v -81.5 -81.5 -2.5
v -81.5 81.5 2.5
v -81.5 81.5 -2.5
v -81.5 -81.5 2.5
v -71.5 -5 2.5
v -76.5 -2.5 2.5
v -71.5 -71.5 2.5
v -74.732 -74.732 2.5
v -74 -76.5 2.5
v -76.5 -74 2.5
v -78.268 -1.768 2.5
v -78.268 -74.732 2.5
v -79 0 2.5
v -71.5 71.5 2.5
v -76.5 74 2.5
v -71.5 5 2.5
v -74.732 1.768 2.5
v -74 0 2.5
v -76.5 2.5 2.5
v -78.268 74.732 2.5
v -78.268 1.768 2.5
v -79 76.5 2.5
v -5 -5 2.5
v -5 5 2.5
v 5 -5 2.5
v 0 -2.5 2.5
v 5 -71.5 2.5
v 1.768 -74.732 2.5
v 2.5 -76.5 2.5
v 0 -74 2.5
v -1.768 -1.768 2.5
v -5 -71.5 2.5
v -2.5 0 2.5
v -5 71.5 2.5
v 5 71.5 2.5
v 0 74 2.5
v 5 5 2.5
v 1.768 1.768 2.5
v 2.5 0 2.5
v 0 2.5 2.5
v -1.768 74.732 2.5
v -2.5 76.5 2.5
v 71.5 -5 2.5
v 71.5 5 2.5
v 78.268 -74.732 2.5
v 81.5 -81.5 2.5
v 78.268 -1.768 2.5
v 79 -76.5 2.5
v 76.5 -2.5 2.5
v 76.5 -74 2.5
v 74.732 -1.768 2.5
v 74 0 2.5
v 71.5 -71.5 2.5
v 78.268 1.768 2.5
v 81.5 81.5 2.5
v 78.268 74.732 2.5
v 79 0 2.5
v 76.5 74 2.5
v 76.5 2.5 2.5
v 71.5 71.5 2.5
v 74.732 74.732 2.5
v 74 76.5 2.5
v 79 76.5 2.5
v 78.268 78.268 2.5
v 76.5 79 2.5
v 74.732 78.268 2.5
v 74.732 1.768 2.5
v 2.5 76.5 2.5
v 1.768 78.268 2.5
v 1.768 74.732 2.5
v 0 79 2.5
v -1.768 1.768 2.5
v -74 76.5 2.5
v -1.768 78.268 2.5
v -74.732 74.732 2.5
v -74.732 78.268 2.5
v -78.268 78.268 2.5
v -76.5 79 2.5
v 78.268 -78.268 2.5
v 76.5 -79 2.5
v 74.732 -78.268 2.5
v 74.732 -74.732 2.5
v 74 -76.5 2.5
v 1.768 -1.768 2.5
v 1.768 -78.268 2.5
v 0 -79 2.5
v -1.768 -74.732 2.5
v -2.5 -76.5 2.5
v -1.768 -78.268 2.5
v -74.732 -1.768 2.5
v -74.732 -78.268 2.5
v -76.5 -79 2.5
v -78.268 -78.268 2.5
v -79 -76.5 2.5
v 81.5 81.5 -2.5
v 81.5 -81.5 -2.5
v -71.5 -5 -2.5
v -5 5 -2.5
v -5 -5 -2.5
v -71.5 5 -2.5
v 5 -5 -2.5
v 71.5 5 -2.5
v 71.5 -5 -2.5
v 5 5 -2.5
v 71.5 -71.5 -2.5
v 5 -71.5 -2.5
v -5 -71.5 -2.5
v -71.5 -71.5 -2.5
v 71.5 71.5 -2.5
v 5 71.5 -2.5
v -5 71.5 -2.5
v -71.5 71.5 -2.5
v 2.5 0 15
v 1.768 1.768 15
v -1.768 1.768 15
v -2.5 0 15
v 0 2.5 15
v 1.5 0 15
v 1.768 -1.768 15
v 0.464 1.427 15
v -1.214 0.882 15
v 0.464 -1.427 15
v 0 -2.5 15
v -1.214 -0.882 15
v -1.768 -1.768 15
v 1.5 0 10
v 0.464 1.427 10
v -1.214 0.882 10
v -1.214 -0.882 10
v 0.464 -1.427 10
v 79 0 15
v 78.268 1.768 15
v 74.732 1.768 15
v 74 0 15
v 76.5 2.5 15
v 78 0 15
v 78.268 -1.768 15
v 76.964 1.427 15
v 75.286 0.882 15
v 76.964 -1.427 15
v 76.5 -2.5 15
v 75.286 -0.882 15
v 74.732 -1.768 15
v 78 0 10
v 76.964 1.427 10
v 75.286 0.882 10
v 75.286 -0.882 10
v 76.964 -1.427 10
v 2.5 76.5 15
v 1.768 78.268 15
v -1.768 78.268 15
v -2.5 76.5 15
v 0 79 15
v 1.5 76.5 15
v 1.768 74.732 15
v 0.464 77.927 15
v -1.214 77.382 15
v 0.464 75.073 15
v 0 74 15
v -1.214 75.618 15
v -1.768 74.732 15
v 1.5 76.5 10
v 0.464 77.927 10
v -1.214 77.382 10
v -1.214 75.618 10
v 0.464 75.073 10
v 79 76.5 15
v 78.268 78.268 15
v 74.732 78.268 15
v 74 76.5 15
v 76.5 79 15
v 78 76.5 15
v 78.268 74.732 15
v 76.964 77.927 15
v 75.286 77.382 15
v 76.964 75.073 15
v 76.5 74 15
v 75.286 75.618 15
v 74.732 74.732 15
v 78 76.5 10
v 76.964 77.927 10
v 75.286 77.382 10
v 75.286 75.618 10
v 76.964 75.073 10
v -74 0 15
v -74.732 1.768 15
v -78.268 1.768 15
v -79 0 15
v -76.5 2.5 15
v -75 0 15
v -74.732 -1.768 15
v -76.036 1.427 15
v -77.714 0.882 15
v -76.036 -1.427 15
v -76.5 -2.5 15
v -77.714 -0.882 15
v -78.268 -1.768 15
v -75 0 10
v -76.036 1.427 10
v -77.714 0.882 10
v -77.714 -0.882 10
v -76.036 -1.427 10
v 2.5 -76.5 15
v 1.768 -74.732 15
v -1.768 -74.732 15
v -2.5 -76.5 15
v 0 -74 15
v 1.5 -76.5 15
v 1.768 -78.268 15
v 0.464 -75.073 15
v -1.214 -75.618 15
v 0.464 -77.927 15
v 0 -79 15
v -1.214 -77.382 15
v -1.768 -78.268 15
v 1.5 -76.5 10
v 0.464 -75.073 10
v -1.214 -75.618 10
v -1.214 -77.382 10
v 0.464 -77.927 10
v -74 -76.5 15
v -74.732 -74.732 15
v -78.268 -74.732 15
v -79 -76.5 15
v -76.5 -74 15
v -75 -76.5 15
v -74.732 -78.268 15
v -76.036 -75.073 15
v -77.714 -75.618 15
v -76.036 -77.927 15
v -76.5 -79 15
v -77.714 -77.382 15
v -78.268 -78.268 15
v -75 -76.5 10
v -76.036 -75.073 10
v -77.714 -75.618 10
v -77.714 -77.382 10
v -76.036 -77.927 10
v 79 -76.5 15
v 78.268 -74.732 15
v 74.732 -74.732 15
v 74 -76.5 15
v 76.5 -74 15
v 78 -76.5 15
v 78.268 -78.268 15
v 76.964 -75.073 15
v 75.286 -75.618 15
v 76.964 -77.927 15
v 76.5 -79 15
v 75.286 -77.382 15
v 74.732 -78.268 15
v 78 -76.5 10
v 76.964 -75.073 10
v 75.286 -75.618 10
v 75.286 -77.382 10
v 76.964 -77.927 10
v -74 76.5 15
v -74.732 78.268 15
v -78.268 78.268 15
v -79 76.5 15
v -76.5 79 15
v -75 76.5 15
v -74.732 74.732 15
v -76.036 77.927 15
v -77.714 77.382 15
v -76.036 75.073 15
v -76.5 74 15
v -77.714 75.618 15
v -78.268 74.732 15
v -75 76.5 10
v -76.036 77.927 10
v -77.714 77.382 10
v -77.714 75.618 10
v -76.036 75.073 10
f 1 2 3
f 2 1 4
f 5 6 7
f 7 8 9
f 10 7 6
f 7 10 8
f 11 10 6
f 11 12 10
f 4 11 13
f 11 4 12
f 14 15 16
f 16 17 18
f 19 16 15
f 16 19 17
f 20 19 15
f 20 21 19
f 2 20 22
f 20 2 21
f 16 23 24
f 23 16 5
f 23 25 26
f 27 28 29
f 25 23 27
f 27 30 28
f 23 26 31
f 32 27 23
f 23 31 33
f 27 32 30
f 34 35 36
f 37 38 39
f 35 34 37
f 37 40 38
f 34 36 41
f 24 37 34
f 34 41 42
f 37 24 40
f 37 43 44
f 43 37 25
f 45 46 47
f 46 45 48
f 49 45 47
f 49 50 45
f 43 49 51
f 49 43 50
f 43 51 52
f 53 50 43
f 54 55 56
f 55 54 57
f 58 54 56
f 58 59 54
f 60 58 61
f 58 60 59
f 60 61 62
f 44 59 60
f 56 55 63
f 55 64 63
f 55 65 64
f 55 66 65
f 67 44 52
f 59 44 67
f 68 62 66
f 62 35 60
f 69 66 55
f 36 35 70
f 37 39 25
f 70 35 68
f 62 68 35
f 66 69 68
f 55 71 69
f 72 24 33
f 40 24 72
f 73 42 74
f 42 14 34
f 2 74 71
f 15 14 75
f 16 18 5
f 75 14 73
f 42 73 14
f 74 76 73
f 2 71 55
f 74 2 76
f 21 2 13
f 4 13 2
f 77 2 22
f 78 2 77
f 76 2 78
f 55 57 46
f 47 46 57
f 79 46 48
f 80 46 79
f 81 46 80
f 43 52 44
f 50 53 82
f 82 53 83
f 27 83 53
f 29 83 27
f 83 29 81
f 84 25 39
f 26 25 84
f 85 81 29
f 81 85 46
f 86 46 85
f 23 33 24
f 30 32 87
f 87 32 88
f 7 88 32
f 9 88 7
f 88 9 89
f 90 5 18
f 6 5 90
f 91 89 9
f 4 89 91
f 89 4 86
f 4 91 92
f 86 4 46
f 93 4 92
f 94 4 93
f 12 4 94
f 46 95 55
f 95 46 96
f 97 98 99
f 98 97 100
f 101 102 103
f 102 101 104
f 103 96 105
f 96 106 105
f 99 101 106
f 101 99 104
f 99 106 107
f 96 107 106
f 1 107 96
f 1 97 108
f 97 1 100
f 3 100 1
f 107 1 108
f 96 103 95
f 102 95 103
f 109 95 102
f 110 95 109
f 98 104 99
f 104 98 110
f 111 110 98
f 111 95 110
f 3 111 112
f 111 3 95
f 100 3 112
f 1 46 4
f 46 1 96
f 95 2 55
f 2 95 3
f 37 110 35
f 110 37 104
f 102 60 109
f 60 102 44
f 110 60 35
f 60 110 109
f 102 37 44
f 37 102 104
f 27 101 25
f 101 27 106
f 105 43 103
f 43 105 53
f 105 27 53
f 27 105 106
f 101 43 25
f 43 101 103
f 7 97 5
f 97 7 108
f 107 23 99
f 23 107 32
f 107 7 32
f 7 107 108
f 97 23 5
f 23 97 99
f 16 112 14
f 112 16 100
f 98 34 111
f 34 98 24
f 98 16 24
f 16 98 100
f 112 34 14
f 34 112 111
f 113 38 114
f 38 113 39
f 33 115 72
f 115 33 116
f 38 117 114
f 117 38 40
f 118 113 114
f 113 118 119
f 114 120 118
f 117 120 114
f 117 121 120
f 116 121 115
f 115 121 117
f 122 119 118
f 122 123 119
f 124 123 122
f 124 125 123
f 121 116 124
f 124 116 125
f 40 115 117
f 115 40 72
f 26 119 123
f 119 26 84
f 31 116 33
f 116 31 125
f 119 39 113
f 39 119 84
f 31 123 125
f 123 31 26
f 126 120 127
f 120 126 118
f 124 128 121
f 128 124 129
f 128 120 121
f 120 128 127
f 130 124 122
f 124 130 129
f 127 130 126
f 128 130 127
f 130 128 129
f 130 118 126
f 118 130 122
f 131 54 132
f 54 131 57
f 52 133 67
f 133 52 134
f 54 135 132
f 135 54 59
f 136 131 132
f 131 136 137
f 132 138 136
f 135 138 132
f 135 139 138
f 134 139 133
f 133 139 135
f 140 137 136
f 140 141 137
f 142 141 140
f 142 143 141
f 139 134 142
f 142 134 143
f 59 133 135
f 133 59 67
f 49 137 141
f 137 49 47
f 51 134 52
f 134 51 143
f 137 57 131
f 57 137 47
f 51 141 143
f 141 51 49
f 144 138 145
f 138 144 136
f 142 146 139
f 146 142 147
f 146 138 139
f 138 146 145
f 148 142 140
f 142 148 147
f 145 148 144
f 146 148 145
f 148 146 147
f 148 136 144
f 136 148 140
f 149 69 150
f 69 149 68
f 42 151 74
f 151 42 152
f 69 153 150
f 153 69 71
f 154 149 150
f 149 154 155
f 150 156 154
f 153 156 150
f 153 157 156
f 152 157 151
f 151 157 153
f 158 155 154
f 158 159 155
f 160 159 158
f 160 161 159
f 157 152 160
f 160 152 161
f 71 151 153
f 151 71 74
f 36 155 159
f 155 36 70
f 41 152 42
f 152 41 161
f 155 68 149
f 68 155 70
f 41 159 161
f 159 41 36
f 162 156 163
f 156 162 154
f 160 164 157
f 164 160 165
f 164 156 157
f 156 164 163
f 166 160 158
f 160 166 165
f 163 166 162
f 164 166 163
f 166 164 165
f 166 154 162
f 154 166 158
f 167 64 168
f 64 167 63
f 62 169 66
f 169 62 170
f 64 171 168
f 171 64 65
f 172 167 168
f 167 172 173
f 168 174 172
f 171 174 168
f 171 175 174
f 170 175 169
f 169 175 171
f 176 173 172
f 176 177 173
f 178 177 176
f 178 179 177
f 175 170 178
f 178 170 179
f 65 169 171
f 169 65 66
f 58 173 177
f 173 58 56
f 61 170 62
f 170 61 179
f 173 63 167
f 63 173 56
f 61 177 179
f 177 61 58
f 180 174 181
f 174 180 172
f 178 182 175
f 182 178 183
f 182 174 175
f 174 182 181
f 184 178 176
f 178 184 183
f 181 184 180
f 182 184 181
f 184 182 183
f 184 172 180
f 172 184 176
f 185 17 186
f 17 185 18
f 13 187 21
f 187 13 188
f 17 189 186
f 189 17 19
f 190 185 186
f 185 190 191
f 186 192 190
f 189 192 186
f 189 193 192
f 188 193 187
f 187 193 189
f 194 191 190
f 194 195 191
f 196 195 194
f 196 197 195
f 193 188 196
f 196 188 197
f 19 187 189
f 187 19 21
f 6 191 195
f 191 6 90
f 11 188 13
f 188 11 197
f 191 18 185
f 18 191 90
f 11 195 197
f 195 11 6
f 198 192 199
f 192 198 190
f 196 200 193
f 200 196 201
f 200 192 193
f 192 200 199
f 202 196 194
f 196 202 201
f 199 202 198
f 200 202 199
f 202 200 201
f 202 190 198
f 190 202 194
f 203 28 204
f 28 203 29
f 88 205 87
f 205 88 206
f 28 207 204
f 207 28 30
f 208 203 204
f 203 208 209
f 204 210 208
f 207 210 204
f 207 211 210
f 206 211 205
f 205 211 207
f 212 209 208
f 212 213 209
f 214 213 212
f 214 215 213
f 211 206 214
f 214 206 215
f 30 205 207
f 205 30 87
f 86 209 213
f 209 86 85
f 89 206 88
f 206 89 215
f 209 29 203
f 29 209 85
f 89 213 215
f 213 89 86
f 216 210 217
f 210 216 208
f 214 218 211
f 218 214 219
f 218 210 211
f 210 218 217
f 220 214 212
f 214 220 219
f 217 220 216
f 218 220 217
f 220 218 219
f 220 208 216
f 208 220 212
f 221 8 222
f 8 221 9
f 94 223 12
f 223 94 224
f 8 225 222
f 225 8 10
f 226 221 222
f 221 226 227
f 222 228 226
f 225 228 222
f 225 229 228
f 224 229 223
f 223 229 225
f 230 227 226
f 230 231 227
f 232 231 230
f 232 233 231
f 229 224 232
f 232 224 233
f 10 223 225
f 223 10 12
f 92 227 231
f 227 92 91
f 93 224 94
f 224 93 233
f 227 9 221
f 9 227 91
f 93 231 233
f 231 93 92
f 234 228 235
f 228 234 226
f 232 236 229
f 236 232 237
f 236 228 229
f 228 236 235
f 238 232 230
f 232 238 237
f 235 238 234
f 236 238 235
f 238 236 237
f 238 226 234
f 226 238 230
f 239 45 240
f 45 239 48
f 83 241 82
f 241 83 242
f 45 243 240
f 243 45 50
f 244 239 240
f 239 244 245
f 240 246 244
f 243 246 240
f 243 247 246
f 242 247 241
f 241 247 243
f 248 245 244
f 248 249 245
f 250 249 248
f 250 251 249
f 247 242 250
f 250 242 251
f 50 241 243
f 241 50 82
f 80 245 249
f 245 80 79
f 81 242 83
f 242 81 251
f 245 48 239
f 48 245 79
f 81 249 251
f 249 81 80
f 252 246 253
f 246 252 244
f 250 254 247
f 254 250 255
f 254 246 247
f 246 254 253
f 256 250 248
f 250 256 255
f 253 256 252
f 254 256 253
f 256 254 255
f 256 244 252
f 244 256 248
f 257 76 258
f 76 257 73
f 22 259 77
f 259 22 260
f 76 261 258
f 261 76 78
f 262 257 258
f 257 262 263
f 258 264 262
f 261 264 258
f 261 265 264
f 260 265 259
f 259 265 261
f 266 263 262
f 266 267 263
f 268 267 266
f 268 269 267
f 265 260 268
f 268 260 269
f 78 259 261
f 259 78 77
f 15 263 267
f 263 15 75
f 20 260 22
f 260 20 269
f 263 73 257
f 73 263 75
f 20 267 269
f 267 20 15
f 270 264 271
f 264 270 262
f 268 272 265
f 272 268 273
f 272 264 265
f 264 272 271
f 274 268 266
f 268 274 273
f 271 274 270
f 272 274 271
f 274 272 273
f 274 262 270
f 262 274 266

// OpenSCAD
board_support();

module board_support() {
    union() {
        width = 163;
        border = 5;
        difference() {
            height = 5;
            partial_size = width / 2 - border * 3;
            cube([width,width,height], center=true);
            translate([border,border,-height/2]) {
                cube([partial_size,partial_size,height]);
            }
            translate([border,-partial_size-border,-height/2]) {
                cube([partial_size,partial_size,height]);
            }
            translate([-partial_size - border, -partial_size - border,-height/2]) {
                cube([partial_size,partial_size,height]);
            }
            translate([-partial_size-border,border,-height/2]) {
                cube([partial_size,partial_size,height]);
            }
        }
        top_hollow_cube();
        // bottom left
        translate([width/2 - border, 0, 0]){
            top_hollow_cube();
        }
        translate([0, width/2 - border, 0]){
            top_hollow_cube();
        }
        translate([width/2 - border, width/2 - border, 0]){
            top_hollow_cube();
        }
        // top right
        translate([-(width/2 - border), 0, 0]){
            top_hollow_cube();
        }
        translate([0, -(width/2 - border), 0]){
            top_hollow_cube();
        }
        translate([-(width/2 - border), -(width/2 - border), 0]){
            top_hollow_cube();
        }
        // corners
        translate([width/2 - border, -(width/2 - border), 0]){
            top_hollow_cube();
        }
        translate([-(width/2 - border), width/2 - border, 0]){
            top_hollow_cube();
        }
    }
}

module top_hollow_cube(diameter = 5, height = 15, top_depth = 5, top_diameter = 3) {
    difference() {
        cylinder(d=diameter, h=height);
        translate([0,0,height-top_depth]){
            cylinder(d=top_diameter, h=top_depth);
        }
    }
}
